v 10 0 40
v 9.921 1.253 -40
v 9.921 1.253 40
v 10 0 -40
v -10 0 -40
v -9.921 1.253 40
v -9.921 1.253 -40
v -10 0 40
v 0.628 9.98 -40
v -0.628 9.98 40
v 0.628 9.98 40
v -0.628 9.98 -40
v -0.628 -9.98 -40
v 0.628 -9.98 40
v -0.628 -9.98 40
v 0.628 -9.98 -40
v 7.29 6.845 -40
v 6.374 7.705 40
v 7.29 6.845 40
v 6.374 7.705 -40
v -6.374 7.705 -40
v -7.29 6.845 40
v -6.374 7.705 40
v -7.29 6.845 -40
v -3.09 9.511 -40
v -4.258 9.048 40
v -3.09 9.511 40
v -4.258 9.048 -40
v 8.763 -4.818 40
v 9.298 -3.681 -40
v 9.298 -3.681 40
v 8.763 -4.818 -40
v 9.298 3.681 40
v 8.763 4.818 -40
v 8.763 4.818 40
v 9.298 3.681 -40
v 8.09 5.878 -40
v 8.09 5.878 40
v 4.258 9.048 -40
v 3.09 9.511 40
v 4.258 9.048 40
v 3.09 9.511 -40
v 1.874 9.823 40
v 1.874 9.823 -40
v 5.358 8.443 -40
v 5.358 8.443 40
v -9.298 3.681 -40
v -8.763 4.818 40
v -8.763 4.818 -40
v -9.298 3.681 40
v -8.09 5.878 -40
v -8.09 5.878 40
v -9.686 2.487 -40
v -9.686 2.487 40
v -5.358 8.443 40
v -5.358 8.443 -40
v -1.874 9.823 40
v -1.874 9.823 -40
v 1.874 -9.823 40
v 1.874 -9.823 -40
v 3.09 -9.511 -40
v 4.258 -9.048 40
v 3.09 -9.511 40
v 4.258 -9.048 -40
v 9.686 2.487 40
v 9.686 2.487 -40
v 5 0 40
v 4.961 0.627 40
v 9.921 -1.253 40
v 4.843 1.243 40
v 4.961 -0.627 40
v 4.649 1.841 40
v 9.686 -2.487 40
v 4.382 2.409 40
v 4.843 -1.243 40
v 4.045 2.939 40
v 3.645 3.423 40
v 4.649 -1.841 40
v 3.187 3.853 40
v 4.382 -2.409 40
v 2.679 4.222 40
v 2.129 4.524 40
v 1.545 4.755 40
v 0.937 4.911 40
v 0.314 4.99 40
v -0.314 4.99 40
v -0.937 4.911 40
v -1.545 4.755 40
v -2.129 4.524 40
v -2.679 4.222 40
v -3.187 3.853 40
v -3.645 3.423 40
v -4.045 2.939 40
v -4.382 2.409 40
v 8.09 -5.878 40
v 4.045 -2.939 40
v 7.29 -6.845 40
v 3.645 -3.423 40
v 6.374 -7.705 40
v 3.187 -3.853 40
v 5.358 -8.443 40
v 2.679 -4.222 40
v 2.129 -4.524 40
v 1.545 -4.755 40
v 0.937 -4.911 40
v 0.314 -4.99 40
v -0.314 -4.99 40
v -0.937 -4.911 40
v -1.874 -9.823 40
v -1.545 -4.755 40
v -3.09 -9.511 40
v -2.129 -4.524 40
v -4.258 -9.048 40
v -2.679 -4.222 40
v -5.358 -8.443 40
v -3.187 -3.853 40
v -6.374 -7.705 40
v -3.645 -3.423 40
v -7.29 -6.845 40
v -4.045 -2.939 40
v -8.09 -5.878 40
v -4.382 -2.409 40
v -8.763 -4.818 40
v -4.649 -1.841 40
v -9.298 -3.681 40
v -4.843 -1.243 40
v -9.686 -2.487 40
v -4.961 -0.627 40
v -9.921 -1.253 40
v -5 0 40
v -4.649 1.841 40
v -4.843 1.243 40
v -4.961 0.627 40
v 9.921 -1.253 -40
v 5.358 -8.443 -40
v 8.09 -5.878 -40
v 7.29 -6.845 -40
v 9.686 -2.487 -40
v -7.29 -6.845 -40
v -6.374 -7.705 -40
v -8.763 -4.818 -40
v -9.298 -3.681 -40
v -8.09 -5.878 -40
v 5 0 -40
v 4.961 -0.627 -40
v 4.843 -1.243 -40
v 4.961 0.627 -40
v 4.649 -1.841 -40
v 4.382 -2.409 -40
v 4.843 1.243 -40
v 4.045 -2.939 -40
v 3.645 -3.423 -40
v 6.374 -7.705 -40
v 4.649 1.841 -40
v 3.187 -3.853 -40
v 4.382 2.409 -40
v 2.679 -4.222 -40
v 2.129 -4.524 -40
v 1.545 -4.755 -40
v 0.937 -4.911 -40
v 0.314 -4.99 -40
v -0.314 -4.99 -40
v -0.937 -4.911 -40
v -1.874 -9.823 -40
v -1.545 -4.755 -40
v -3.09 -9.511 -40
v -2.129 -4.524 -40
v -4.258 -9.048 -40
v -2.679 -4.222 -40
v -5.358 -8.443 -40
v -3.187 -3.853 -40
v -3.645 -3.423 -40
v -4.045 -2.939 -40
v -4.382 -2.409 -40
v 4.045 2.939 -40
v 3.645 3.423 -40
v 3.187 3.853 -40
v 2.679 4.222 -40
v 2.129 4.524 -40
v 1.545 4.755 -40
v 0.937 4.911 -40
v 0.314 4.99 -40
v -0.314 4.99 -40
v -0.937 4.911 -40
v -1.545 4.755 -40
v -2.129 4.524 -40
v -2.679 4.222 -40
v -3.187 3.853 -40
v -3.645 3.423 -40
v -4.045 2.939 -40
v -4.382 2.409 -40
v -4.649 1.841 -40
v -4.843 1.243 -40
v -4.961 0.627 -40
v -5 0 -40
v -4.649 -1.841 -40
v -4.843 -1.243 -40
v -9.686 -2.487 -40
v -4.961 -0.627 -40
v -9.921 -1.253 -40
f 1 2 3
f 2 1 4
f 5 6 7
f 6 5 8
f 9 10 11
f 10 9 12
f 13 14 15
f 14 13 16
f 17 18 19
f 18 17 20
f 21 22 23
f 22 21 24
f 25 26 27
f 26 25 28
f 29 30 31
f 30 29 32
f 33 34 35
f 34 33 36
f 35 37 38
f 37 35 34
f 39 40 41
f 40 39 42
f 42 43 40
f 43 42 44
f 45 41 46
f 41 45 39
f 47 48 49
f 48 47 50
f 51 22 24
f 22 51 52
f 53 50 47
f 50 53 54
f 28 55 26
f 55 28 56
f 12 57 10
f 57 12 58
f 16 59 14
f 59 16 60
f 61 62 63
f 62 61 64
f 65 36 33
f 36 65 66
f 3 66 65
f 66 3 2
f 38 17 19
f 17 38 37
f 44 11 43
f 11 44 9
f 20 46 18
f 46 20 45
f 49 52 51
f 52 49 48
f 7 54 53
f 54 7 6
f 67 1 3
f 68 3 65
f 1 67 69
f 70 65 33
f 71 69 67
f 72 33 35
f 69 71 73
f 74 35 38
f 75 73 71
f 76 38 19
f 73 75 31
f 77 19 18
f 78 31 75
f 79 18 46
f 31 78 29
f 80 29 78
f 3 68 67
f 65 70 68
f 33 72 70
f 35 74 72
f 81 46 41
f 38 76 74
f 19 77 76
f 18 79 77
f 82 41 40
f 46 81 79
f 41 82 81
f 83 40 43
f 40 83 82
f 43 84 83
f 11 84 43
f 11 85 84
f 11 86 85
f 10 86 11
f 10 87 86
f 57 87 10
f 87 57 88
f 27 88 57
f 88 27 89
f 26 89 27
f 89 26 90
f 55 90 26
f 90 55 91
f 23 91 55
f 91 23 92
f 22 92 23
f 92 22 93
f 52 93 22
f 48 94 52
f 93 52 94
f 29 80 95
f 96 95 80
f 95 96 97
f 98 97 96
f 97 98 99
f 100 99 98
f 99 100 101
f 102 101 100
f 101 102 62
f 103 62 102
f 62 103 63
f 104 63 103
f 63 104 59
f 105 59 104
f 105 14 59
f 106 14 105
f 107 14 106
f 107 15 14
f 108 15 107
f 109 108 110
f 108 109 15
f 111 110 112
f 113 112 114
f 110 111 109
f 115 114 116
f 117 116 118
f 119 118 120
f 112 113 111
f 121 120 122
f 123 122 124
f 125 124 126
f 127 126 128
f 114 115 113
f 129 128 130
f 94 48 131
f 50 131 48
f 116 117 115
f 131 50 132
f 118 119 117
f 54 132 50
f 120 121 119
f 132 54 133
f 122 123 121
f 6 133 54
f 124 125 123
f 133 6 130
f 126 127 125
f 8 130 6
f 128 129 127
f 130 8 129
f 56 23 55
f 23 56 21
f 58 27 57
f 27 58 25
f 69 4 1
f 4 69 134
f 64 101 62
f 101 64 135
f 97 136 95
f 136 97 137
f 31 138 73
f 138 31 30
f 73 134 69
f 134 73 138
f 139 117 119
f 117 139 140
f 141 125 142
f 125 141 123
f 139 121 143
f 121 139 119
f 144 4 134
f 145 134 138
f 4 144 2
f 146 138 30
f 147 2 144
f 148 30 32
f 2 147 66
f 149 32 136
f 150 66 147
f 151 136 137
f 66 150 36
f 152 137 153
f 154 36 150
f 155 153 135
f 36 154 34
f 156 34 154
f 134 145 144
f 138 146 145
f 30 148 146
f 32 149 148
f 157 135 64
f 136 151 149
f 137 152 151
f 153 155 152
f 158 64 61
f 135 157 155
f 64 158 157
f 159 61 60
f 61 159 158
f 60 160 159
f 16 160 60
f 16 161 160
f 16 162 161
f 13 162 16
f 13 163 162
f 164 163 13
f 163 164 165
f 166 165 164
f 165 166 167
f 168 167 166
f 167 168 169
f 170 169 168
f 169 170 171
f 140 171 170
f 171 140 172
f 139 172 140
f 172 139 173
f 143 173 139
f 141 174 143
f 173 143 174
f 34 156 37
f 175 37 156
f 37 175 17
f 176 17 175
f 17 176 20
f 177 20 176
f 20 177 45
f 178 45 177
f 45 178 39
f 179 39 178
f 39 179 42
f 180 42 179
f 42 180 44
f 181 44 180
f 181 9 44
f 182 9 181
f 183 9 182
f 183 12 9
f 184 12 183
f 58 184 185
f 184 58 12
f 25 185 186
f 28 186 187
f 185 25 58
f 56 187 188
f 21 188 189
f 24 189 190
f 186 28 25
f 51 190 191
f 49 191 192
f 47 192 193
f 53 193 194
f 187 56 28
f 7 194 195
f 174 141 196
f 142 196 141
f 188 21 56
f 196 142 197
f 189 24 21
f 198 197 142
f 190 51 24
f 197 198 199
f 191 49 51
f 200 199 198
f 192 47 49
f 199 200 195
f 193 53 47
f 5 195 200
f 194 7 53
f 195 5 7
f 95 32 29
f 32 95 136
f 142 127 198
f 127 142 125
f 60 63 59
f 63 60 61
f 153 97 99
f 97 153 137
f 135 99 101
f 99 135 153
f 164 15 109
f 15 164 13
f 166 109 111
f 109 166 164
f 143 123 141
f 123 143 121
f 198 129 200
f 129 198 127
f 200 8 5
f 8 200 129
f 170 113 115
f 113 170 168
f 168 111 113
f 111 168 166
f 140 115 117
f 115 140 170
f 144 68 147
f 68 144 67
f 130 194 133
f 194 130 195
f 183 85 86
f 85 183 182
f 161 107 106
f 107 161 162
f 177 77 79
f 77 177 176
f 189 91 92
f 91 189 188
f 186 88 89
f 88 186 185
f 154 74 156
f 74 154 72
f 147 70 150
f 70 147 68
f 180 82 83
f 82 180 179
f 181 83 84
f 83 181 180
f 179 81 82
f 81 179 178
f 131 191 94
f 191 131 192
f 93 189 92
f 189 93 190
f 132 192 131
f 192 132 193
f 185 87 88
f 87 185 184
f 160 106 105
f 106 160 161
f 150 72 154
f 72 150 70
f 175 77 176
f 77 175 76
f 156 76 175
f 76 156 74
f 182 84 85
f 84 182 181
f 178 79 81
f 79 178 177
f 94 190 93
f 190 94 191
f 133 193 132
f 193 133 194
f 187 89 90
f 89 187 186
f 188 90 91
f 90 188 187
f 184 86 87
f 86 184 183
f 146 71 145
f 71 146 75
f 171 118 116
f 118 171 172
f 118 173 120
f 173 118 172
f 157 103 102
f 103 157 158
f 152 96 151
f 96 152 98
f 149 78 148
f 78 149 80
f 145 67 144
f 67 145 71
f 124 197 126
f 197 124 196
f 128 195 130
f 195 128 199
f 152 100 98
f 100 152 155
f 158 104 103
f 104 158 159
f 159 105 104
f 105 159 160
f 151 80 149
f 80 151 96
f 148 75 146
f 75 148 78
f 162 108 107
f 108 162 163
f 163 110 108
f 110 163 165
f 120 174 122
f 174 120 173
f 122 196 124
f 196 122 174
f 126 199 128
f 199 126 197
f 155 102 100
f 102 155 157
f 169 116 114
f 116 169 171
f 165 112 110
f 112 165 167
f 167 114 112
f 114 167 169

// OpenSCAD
$fn = 50;


difference() {
	union() {
		translate(v = [0, 0, -40.0000000000]) {
			cylinder(h = 80, r = 10.0000000000);
		}
	}
	union() {
		translate(v = [0, 0, -100.0000000000]) {
			cylinder(h = 200, r = 5.0000000000);
		}
	}
}
